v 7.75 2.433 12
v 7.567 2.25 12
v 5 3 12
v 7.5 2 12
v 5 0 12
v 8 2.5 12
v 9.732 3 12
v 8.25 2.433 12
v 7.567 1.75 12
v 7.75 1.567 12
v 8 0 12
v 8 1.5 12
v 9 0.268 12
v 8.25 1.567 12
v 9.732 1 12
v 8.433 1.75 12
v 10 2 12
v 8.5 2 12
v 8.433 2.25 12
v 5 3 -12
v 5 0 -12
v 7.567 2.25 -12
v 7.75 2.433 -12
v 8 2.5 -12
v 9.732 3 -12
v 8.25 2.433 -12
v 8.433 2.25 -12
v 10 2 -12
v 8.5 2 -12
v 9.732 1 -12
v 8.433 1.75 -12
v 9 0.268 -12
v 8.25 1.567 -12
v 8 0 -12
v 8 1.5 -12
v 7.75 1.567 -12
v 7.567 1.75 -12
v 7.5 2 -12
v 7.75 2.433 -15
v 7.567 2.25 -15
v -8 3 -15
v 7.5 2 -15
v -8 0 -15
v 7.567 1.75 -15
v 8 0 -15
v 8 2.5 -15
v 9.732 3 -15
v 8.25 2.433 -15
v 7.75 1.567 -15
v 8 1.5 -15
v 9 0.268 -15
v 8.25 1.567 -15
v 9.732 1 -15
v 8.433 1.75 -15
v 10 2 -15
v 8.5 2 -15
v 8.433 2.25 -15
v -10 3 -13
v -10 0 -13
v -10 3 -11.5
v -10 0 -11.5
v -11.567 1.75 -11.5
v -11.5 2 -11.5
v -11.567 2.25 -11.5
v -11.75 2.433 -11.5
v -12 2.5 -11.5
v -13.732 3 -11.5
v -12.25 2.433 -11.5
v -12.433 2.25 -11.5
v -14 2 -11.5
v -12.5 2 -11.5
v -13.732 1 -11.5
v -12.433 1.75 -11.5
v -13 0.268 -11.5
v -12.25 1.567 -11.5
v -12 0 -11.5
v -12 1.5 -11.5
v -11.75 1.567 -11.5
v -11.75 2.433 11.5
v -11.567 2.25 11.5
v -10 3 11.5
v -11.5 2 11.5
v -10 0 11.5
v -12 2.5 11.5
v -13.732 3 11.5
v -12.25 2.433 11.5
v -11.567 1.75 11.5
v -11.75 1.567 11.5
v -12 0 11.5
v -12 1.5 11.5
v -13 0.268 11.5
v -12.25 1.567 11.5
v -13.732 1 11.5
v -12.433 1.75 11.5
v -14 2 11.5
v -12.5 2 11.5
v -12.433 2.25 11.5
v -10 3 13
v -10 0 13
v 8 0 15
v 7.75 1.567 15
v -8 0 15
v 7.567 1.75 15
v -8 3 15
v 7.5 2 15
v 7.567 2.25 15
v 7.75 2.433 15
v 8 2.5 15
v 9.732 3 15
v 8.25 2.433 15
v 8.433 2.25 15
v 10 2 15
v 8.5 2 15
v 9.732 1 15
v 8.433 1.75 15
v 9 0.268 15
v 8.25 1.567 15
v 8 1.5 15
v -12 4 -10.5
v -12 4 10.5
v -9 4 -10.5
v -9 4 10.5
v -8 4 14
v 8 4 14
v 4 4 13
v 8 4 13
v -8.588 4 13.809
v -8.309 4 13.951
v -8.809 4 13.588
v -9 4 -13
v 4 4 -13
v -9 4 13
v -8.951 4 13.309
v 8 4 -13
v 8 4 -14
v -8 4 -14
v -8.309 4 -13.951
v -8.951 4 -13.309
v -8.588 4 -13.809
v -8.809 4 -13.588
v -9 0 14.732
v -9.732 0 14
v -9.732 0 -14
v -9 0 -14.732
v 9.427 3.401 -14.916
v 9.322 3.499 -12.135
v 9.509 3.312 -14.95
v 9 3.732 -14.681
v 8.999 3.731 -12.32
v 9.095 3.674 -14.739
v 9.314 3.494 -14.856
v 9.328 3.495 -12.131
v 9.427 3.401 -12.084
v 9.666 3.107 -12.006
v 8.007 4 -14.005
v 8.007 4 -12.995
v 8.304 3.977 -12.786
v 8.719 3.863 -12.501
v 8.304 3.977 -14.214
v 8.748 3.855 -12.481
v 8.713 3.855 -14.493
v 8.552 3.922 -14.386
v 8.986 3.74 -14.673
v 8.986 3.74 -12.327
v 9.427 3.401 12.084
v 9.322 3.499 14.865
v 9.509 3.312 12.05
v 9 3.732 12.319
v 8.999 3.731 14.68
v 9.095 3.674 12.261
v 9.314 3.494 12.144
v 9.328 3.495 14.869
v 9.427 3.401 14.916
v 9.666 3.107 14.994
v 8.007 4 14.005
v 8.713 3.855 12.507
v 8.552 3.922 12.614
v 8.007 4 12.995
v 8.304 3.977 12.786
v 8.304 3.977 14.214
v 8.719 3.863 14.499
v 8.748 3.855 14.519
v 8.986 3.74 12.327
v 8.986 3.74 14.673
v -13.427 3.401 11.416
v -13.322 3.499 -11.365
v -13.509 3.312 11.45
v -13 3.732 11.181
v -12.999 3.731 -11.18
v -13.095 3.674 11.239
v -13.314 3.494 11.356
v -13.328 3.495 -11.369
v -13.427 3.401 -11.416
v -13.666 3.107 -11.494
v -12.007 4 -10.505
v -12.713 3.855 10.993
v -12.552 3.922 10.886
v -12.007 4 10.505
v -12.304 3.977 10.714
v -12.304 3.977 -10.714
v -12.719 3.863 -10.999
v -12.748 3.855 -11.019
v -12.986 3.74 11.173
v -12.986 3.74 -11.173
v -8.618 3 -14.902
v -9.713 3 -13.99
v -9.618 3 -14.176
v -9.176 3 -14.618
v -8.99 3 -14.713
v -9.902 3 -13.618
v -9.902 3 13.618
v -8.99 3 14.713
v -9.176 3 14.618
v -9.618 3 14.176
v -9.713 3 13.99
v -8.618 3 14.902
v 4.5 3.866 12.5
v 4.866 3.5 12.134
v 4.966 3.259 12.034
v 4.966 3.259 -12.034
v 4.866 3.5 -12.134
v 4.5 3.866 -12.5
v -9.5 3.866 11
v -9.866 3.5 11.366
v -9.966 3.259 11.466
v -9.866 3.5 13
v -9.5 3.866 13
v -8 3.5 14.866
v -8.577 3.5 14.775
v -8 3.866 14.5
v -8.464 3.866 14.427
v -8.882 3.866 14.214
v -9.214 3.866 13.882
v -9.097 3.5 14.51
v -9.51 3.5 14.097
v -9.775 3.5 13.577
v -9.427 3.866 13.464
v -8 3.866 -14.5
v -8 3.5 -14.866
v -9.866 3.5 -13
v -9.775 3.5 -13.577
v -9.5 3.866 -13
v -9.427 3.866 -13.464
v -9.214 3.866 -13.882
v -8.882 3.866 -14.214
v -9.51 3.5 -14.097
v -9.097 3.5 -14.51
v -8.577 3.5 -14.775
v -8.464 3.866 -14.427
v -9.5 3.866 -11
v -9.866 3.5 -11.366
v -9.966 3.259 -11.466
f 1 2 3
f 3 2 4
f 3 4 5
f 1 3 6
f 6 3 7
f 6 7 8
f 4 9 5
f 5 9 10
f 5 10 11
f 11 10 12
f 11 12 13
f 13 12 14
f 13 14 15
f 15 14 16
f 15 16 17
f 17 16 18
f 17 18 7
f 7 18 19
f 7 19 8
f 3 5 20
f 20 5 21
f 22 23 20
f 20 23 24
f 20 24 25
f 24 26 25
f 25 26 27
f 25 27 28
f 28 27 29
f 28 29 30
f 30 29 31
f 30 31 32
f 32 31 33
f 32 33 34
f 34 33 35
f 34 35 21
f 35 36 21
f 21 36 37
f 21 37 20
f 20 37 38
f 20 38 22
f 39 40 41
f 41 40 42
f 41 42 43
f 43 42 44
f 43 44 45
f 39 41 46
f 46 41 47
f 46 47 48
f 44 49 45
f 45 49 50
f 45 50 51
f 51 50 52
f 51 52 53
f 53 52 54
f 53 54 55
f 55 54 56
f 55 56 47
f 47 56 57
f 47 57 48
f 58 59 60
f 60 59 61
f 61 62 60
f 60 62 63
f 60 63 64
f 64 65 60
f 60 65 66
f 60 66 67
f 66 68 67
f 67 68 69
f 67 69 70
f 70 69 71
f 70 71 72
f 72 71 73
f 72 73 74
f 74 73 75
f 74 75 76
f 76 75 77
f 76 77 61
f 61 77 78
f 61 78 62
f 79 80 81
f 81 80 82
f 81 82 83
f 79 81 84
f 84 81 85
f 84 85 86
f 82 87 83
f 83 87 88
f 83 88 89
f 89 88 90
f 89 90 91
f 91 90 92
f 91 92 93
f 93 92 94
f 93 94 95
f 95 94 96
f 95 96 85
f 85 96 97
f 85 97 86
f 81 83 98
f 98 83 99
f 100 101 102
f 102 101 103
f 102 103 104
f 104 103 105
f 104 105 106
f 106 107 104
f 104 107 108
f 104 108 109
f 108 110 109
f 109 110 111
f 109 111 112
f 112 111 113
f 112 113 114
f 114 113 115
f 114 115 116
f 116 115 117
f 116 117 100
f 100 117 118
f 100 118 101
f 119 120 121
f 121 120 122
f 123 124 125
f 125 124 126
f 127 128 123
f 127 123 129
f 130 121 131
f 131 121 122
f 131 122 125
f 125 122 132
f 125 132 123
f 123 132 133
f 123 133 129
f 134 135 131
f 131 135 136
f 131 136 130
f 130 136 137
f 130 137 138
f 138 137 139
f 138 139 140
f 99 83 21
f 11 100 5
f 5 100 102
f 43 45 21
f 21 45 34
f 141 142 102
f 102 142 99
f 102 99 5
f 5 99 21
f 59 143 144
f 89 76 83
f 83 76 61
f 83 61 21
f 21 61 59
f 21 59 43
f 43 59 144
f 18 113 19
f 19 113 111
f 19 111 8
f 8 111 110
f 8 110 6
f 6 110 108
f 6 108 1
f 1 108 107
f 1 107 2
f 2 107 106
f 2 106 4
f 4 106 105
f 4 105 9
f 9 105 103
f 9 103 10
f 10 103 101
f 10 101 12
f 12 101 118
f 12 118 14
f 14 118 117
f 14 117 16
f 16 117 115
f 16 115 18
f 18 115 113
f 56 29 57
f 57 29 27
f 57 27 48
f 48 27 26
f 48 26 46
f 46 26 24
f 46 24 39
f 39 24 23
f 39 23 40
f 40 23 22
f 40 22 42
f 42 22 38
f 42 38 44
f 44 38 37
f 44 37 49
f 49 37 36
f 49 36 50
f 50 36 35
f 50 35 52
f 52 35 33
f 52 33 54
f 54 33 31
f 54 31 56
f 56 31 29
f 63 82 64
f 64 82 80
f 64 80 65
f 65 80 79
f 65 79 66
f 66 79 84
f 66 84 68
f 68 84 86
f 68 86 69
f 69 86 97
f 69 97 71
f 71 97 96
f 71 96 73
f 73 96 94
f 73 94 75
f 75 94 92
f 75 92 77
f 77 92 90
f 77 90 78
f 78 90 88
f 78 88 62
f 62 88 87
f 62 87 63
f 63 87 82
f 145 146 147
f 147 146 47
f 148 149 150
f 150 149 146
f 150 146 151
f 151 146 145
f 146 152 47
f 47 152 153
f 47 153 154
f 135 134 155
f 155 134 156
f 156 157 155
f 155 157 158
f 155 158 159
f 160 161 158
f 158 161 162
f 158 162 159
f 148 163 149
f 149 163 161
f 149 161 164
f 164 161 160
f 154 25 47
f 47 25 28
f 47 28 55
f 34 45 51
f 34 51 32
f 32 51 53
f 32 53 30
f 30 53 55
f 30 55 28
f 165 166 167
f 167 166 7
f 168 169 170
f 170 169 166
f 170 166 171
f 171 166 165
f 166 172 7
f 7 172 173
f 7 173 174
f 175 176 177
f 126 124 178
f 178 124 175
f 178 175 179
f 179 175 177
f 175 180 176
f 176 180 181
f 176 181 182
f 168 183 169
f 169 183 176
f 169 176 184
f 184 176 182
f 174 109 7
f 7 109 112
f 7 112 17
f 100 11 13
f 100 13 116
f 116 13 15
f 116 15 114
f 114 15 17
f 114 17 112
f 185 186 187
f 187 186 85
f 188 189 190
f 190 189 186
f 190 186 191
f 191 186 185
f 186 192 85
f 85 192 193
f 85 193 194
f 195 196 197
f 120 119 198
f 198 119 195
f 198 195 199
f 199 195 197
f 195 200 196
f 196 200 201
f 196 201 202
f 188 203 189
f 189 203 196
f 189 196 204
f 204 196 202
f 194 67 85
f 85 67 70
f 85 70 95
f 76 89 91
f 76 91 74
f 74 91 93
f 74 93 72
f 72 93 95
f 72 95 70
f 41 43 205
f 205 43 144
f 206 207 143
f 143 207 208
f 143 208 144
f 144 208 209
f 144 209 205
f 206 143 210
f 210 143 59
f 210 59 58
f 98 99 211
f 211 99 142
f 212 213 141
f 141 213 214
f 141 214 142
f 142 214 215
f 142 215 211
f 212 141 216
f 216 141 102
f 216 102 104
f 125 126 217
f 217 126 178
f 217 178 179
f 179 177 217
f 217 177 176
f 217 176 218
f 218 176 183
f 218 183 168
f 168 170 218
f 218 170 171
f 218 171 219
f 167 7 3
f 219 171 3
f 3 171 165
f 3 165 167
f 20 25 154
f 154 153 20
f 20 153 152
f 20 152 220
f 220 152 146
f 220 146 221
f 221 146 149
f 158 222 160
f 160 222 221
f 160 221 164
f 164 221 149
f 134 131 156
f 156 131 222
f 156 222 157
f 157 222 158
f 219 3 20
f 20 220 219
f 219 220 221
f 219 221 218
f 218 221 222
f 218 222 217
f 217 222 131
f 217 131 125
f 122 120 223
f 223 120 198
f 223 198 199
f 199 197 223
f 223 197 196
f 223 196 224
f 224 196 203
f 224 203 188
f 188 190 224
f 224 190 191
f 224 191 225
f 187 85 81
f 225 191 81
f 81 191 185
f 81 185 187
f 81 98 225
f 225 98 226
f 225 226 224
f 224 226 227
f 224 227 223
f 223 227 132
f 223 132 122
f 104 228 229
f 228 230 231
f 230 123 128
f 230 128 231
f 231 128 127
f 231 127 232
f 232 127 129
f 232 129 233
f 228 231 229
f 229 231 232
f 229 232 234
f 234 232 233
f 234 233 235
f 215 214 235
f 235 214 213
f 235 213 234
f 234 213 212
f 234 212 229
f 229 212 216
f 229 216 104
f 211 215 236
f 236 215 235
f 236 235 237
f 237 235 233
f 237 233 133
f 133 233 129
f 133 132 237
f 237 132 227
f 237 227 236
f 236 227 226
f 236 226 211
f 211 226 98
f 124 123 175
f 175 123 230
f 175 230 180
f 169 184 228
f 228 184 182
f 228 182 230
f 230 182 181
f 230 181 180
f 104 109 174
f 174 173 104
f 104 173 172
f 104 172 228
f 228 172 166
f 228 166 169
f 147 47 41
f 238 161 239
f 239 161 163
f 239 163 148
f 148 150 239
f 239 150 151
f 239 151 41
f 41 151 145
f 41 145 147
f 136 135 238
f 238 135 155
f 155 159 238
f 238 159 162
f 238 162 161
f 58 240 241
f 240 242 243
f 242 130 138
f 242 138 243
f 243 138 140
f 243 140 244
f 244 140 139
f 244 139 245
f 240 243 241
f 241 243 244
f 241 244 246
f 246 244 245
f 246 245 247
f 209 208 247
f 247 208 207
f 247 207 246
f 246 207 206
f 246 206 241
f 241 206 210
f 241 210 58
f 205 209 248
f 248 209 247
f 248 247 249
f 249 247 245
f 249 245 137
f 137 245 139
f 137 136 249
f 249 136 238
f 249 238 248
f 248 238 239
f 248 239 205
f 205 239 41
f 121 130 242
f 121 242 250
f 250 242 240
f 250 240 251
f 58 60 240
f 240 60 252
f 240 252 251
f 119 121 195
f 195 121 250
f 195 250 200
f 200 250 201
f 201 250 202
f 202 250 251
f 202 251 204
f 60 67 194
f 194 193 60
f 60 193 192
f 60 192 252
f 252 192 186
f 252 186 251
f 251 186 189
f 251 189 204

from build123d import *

# Parameters (mm, degrees)
EXTRUDE_1_DEPTH          = 4
CUT_EXTRUDE_1_DEPTH      = 31.6757233
CUT_EXTRUDE_1_DEPTH_BACK = 31.6757233
SKETCH_2_R               = 0.5
CUT_EXTRUDE_2_REACH      = 32.237
SKETCH_3_R               = 0.5
FILLET_1_R               = 2
FILLET_2_R               = 1


# Some blends are built 0.0001 mm under size
with BuildPart() as part:
    # Эскиз1 → Бобышка-Вытянуть1 (new body)
    with BuildSketch(Plane(origin=(0, 0, 0), x_dir=(1, 0, 0), z_dir=(0, 1, 0))):
        Polygon((-10, 15), (10, 15), (10, 12), (5, 12), (5, -12), (10, -12), (10, -15), (-10, -15), (-10, -11.5), (-14, -11.5), (-14, 11.5), (-10, 11.5), align=None)
    extrude(amount=EXTRUDE_1_DEPTH)

    # Эскиз2 → Вырез-Вытянуть1 (cut, two sides: drawn at the far end of the back side and taken through both)
    with BuildSketch(Plane.XY.offset(-12).offset(-CUT_EXTRUDE_1_DEPTH_BACK)):
        with Locations((8, 2)):
            Circle(SKETCH_2_R)
    extrude(amount=CUT_EXTRUDE_1_DEPTH + CUT_EXTRUDE_1_DEPTH_BACK, mode=Mode.SUBTRACT)

    # Эскиз3 → Вырез-Вытянуть2 (cut, up to next)
    with BuildSketch(Plane.XY.offset(11.5), mode=Mode.PRIVATE) as cut_extrude_2_sk1:
        with Locations((-12, 2)):
            Circle(SKETCH_3_R)
    cut_extrude_2_tool1 = extrude(cut_extrude_2_sk1.sketch, amount=-CUT_EXTRUDE_2_REACH, mode=Mode.PRIVATE) & part.part
    add(cut_extrude_2_tool1.solids().sort_by_distance((-12, 2, 11.5))[0], mode=Mode.SUBTRACT)

    # Скругление1
    fillet_1_edges = [part.edges().sort_by_distance(p)[0] for p in [
        (10, 0, -13.5),
        (10, 4, -13.5),
        (10, 0, 13.5),
        (10, 4, 13.5),
        (-14, 0, 0),
        (-14, 4, 0),
        (-10, 2, -15),
        (-10, 2, 15),
    ]]
    fillet(fillet_1_edges, radius=FILLET_1_R - 0.0001)  # a hair under: the kernel refuses the full size

    # Скругление2
    # the kernel refuses this fillet: 1 mm, written as the material it takes off along each edge
    with BuildSketch(Plane(origin=(5, 4, -12), x_dir=(-1, 0, 0), z_dir=(0, 0, 1))) as fillet_2_piece_1:
        with BuildLine():
            CenterArc((FILLET_2_R, FILLET_2_R), FILLET_2_R, 180, 90)
            Line((0, FILLET_2_R), (0, 0))
            Line((0, 0), (FILLET_2_R, 0))
        make_face()
    extrude(amount=24, mode=Mode.SUBTRACT)
    with BuildSketch(Plane(origin=(10.5001, 4, -12), x_dir=(0, 0, -1), z_dir=(-1, 0, 0)), Plane(origin=(5, 4, 12), x_dir=(0, 0, 1), z_dir=(1, 0, 0))) as fillet_2_piece_2:
        with BuildLine():
            CenterArc((FILLET_2_R, FILLET_2_R), FILLET_2_R, 180, 90)
            Line((0, FILLET_2_R), (0, 0))
            Line((0, 0), (FILLET_2_R, 0))
        make_face()
    extrude(amount=5.5001, mode=Mode.SUBTRACT)
    with BuildSketch(Plane(origin=(-14.5001, 4, -11.5), x_dir=(0, 0, 1), z_dir=(1, 0, 0)), Plane(origin=(-10, 4, 11.5), x_dir=(0, 0, -1), z_dir=(-1, 0, 0))) as fillet_2_piece_3:
        with BuildLine():
            CenterArc((FILLET_2_R, FILLET_2_R), FILLET_2_R, 180, 90)
            Line((0, FILLET_2_R), (0, 0))
            Line((0, 0), (FILLET_2_R, 0))
        make_face()
    extrude(amount=4.5001, mode=Mode.SUBTRACT)
    with BuildSketch(Plane(origin=(-10, 4, 13.0001), x_dir=(1, 0, 0), z_dir=(0, 0, -1)), Plane(origin=(-10, 4, -11.5), x_dir=(1, 0, 0), z_dir=(0, 0, -1))) as fillet_2_piece_4:
        with BuildLine():
            CenterArc((FILLET_2_R, FILLET_2_R), FILLET_2_R, 180, 90)
            Line((0, FILLET_2_R), (0, 0))
            Line((0, 0), (FILLET_2_R, 0))
        make_face()
    extrude(amount=1.5001, mode=Mode.SUBTRACT)
    with BuildSketch(Plane(origin=(-8.0001, 4, -15), x_dir=(0, -1, 0), z_dir=(1, 0, 0))) as fillet_2_piece_5:
        with BuildLine():
            CenterArc((FILLET_2_R, -FILLET_2_R), FILLET_2_R, 90, 90)
            Line((0, -FILLET_2_R), (0, 0))
            Line((0, 0), (FILLET_2_R, 0))
        make_face()
    extrude(amount=18.5002, mode=Mode.SUBTRACT)
    with BuildSketch(Plane(origin=(10.5001, 4, 15), x_dir=(0, 0, -1), z_dir=(-1, 0, 0))) as fillet_2_piece_6:
        with BuildLine():
            CenterArc((FILLET_2_R, FILLET_2_R), FILLET_2_R, 180, 90)
            Line((0, FILLET_2_R), (0, 0))
            Line((0, 0), (FILLET_2_R, 0))
        make_face()
    extrude(amount=18.5002, mode=Mode.SUBTRACT)
    with BuildSketch(Plane(origin=(-8.0001, 4, 13.0001), x_dir=(0, 0, 1), z_dir=(1, 0, 0))) as fillet_2_piece_7:
        with BuildLine():
            CenterArc((1.9999 - FILLET_2_R, FILLET_2_R), FILLET_2_R, 270, 90)
            Line((1.9999, FILLET_2_R), (1.9999, 0))
            Line((1.9999, 0), (1.9999 - FILLET_2_R, 0))
        make_face()
    revolve(axis=Axis((-8.0001, 4, 13.0001), (0, -1, 0)), revolution_arc=90, mode=Mode.SUBTRACT)
    with BuildSketch(Plane(origin=(-8.0001, 4, -13.0001), x_dir=(0, 0, -1), z_dir=(1, 0, 0))) as fillet_2_piece_8:
        with BuildLine():
            CenterArc((1.9999 - FILLET_2_R, -FILLET_2_R), FILLET_2_R, 0, 90)
            Line((1.9999 - FILLET_2_R, 0), (1.9999, 0))
            Line((1.9999, 0), (1.9999, -FILLET_2_R))
        make_face()
    revolve(axis=Axis((-8.0001, 4, -13.0001), (0, 1, 0)), revolution_arc=90, mode=Mode.SUBTRACT)
    with BuildSketch(Plane(origin=(10.5001, 4, -12), x_dir=(0, 0, -1), z_dir=(-1, 0, 0))) as fillet_2_piece_9a_section:
        with BuildLine():
            CenterArc((FILLET_2_R, FILLET_2_R), FILLET_2_R, 180, 90)
            Line((0, FILLET_2_R), (0, 0))
            Line((0, 0), (FILLET_2_R, 0))
        make_face()
    fillet_2_piece_9a = extrude(amount=8.0001, mode=Mode.PRIVATE)
    fillet_2_piece_9a = split(fillet_2_piece_9a, bisect_by=Plane(origin=(5, 3.773604886, -12.226395114), z_dir=(-1, 0, 0)), keep=Keep.TOP, mode=Mode.PRIVATE)
    with BuildSketch(Plane(origin=(5, 4, -14.5), x_dir=(-1, 0, 0), z_dir=(0, 0, 1))) as fillet_2_piece_9b_section:
        with BuildLine():
            CenterArc((FILLET_2_R, FILLET_2_R), FILLET_2_R, 180, 90)
            Line((0, FILLET_2_R), (0, 0))
            Line((0, 0), (FILLET_2_R, 0))
        make_face()
    fillet_2_piece_9b = extrude(amount=26.5, mode=Mode.PRIVATE)
    fillet_2_piece_9b = split(fillet_2_piece_9b, bisect_by=Plane(origin=(4.773604886, 3.773604886, -12), z_dir=(0, 0, -1)), keep=Keep.TOP, mode=Mode.PRIVATE)
    fillet_2_piece_9 = fillet_2_piece_9a & fillet_2_piece_9b
    add(fillet_2_piece_9, mode=Mode.SUBTRACT)
    with BuildSketch(Plane(origin=(5, 4, -12), x_dir=(-1, 0, 0), z_dir=(0, 0, 1))) as fillet_2_piece_10a_section:
        with BuildLine():
            CenterArc((FILLET_2_R, FILLET_2_R), FILLET_2_R, 180, 90)
            Line((0, FILLET_2_R), (0, 0))
            Line((0, 0), (FILLET_2_R, 0))
        make_face()
    fillet_2_piece_10a = extrude(amount=26.5, mode=Mode.PRIVATE)
    fillet_2_piece_10a = split(fillet_2_piece_10a, bisect_by=Plane(origin=(4.773604886, 3.773604886, 12), z_dir=(0, 0, 1)), keep=Keep.TOP, mode=Mode.PRIVATE)
    with BuildSketch(Plane(origin=(2.5, 4, 12), x_dir=(0, 0, 1), z_dir=(1, 0, 0))) as fillet_2_piece_10b_section:
        with BuildLine():
            CenterArc((FILLET_2_R, FILLET_2_R), FILLET_2_R, 180, 90)
            Line((0, FILLET_2_R), (0, 0))
            Line((0, 0), (FILLET_2_R, 0))
        make_face()
    fillet_2_piece_10b = extrude(amount=8.0001, mode=Mode.PRIVATE)
    fillet_2_piece_10b = split(fillet_2_piece_10b, bisect_by=Plane(origin=(5, 3.773604886, 12.226395114), z_dir=(-1, 0, 0)), keep=Keep.TOP, mode=Mode.PRIVATE)
    fillet_2_piece_10 = fillet_2_piece_10a & fillet_2_piece_10b
    add(fillet_2_piece_10, mode=Mode.SUBTRACT)
    with BuildSketch(Plane(origin=(-10, 4, -9), x_dir=(1, 0, 0), z_dir=(0, 0, -1))) as fillet_2_piece_11a_section:
        with BuildLine():
            CenterArc((FILLET_2_R, FILLET_2_R), FILLET_2_R, 180, 90)
            Line((0, FILLET_2_R), (0, 0))
            Line((0, 0), (FILLET_2_R, 0))
        make_face()
    fillet_2_piece_11a = extrude(amount=4.0001, mode=Mode.PRIVATE)
    fillet_2_piece_11a = split(fillet_2_piece_11a, bisect_by=Plane(origin=(-9.773604886, 3.773604886, -11.5), z_dir=(0, 0, 1)), keep=Keep.TOP, mode=Mode.PRIVATE)
    with BuildSketch(Plane(origin=(-14.5001, 4, -11.5), x_dir=(0, 0, 1), z_dir=(1, 0, 0))) as fillet_2_piece_11b_section:
        with BuildLine():
            CenterArc((FILLET_2_R, FILLET_2_R), FILLET_2_R, 180, 90)
            Line((0, FILLET_2_R), (0, 0))
            Line((0, 0), (FILLET_2_R, 0))
        make_face()
    fillet_2_piece_11b = extrude(amount=7.0001, mode=Mode.PRIVATE)
    fillet_2_piece_11b = split(fillet_2_piece_11b, bisect_by=Plane(origin=(-10, 3.773604886, -11.273604886), z_dir=(1, 0, 0)), keep=Keep.TOP, mode=Mode.PRIVATE)
    fillet_2_piece_11 = fillet_2_piece_11a & fillet_2_piece_11b
    add(fillet_2_piece_11, mode=Mode.SUBTRACT)
    with BuildSketch(Plane(origin=(-7.5, 4, 11.5), x_dir=(0, 0, -1), z_dir=(-1, 0, 0))) as fillet_2_piece_12a_section:
        with BuildLine():
            CenterArc((FILLET_2_R, FILLET_2_R), FILLET_2_R, 180, 90)
            Line((0, FILLET_2_R), (0, 0))
            Line((0, 0), (FILLET_2_R, 0))
        make_face()
    fillet_2_piece_12a = extrude(amount=7.0001, mode=Mode.PRIVATE)
    fillet_2_piece_12a = split(fillet_2_piece_12a, bisect_by=Plane(origin=(-10, 3.773604886, 11.273604886), z_dir=(1, 0, 0)), keep=Keep.TOP, mode=Mode.PRIVATE)
    with BuildSketch(Plane(origin=(-10, 4, 13.0001), x_dir=(1, 0, 0), z_dir=(0, 0, -1))) as fillet_2_piece_12b_section:
        with BuildLine():
            CenterArc((FILLET_2_R, FILLET_2_R), FILLET_2_R, 180, 90)
            Line((0, FILLET_2_R), (0, 0))
            Line((0, 0), (FILLET_2_R, 0))
        make_face()
    fillet_2_piece_12b = extrude(amount=4.0001, mode=Mode.PRIVATE)
    fillet_2_piece_12b = split(fillet_2_piece_12b, bisect_by=Plane(origin=(-9.773604886, 3.773604886, 11.5), z_dir=(0, 0, -1)), keep=Keep.TOP, mode=Mode.PRIVATE)
    fillet_2_piece_12 = fillet_2_piece_12a & fillet_2_piece_12b
    add(fillet_2_piece_12, mode=Mode.SUBTRACT)


solid = part.part
